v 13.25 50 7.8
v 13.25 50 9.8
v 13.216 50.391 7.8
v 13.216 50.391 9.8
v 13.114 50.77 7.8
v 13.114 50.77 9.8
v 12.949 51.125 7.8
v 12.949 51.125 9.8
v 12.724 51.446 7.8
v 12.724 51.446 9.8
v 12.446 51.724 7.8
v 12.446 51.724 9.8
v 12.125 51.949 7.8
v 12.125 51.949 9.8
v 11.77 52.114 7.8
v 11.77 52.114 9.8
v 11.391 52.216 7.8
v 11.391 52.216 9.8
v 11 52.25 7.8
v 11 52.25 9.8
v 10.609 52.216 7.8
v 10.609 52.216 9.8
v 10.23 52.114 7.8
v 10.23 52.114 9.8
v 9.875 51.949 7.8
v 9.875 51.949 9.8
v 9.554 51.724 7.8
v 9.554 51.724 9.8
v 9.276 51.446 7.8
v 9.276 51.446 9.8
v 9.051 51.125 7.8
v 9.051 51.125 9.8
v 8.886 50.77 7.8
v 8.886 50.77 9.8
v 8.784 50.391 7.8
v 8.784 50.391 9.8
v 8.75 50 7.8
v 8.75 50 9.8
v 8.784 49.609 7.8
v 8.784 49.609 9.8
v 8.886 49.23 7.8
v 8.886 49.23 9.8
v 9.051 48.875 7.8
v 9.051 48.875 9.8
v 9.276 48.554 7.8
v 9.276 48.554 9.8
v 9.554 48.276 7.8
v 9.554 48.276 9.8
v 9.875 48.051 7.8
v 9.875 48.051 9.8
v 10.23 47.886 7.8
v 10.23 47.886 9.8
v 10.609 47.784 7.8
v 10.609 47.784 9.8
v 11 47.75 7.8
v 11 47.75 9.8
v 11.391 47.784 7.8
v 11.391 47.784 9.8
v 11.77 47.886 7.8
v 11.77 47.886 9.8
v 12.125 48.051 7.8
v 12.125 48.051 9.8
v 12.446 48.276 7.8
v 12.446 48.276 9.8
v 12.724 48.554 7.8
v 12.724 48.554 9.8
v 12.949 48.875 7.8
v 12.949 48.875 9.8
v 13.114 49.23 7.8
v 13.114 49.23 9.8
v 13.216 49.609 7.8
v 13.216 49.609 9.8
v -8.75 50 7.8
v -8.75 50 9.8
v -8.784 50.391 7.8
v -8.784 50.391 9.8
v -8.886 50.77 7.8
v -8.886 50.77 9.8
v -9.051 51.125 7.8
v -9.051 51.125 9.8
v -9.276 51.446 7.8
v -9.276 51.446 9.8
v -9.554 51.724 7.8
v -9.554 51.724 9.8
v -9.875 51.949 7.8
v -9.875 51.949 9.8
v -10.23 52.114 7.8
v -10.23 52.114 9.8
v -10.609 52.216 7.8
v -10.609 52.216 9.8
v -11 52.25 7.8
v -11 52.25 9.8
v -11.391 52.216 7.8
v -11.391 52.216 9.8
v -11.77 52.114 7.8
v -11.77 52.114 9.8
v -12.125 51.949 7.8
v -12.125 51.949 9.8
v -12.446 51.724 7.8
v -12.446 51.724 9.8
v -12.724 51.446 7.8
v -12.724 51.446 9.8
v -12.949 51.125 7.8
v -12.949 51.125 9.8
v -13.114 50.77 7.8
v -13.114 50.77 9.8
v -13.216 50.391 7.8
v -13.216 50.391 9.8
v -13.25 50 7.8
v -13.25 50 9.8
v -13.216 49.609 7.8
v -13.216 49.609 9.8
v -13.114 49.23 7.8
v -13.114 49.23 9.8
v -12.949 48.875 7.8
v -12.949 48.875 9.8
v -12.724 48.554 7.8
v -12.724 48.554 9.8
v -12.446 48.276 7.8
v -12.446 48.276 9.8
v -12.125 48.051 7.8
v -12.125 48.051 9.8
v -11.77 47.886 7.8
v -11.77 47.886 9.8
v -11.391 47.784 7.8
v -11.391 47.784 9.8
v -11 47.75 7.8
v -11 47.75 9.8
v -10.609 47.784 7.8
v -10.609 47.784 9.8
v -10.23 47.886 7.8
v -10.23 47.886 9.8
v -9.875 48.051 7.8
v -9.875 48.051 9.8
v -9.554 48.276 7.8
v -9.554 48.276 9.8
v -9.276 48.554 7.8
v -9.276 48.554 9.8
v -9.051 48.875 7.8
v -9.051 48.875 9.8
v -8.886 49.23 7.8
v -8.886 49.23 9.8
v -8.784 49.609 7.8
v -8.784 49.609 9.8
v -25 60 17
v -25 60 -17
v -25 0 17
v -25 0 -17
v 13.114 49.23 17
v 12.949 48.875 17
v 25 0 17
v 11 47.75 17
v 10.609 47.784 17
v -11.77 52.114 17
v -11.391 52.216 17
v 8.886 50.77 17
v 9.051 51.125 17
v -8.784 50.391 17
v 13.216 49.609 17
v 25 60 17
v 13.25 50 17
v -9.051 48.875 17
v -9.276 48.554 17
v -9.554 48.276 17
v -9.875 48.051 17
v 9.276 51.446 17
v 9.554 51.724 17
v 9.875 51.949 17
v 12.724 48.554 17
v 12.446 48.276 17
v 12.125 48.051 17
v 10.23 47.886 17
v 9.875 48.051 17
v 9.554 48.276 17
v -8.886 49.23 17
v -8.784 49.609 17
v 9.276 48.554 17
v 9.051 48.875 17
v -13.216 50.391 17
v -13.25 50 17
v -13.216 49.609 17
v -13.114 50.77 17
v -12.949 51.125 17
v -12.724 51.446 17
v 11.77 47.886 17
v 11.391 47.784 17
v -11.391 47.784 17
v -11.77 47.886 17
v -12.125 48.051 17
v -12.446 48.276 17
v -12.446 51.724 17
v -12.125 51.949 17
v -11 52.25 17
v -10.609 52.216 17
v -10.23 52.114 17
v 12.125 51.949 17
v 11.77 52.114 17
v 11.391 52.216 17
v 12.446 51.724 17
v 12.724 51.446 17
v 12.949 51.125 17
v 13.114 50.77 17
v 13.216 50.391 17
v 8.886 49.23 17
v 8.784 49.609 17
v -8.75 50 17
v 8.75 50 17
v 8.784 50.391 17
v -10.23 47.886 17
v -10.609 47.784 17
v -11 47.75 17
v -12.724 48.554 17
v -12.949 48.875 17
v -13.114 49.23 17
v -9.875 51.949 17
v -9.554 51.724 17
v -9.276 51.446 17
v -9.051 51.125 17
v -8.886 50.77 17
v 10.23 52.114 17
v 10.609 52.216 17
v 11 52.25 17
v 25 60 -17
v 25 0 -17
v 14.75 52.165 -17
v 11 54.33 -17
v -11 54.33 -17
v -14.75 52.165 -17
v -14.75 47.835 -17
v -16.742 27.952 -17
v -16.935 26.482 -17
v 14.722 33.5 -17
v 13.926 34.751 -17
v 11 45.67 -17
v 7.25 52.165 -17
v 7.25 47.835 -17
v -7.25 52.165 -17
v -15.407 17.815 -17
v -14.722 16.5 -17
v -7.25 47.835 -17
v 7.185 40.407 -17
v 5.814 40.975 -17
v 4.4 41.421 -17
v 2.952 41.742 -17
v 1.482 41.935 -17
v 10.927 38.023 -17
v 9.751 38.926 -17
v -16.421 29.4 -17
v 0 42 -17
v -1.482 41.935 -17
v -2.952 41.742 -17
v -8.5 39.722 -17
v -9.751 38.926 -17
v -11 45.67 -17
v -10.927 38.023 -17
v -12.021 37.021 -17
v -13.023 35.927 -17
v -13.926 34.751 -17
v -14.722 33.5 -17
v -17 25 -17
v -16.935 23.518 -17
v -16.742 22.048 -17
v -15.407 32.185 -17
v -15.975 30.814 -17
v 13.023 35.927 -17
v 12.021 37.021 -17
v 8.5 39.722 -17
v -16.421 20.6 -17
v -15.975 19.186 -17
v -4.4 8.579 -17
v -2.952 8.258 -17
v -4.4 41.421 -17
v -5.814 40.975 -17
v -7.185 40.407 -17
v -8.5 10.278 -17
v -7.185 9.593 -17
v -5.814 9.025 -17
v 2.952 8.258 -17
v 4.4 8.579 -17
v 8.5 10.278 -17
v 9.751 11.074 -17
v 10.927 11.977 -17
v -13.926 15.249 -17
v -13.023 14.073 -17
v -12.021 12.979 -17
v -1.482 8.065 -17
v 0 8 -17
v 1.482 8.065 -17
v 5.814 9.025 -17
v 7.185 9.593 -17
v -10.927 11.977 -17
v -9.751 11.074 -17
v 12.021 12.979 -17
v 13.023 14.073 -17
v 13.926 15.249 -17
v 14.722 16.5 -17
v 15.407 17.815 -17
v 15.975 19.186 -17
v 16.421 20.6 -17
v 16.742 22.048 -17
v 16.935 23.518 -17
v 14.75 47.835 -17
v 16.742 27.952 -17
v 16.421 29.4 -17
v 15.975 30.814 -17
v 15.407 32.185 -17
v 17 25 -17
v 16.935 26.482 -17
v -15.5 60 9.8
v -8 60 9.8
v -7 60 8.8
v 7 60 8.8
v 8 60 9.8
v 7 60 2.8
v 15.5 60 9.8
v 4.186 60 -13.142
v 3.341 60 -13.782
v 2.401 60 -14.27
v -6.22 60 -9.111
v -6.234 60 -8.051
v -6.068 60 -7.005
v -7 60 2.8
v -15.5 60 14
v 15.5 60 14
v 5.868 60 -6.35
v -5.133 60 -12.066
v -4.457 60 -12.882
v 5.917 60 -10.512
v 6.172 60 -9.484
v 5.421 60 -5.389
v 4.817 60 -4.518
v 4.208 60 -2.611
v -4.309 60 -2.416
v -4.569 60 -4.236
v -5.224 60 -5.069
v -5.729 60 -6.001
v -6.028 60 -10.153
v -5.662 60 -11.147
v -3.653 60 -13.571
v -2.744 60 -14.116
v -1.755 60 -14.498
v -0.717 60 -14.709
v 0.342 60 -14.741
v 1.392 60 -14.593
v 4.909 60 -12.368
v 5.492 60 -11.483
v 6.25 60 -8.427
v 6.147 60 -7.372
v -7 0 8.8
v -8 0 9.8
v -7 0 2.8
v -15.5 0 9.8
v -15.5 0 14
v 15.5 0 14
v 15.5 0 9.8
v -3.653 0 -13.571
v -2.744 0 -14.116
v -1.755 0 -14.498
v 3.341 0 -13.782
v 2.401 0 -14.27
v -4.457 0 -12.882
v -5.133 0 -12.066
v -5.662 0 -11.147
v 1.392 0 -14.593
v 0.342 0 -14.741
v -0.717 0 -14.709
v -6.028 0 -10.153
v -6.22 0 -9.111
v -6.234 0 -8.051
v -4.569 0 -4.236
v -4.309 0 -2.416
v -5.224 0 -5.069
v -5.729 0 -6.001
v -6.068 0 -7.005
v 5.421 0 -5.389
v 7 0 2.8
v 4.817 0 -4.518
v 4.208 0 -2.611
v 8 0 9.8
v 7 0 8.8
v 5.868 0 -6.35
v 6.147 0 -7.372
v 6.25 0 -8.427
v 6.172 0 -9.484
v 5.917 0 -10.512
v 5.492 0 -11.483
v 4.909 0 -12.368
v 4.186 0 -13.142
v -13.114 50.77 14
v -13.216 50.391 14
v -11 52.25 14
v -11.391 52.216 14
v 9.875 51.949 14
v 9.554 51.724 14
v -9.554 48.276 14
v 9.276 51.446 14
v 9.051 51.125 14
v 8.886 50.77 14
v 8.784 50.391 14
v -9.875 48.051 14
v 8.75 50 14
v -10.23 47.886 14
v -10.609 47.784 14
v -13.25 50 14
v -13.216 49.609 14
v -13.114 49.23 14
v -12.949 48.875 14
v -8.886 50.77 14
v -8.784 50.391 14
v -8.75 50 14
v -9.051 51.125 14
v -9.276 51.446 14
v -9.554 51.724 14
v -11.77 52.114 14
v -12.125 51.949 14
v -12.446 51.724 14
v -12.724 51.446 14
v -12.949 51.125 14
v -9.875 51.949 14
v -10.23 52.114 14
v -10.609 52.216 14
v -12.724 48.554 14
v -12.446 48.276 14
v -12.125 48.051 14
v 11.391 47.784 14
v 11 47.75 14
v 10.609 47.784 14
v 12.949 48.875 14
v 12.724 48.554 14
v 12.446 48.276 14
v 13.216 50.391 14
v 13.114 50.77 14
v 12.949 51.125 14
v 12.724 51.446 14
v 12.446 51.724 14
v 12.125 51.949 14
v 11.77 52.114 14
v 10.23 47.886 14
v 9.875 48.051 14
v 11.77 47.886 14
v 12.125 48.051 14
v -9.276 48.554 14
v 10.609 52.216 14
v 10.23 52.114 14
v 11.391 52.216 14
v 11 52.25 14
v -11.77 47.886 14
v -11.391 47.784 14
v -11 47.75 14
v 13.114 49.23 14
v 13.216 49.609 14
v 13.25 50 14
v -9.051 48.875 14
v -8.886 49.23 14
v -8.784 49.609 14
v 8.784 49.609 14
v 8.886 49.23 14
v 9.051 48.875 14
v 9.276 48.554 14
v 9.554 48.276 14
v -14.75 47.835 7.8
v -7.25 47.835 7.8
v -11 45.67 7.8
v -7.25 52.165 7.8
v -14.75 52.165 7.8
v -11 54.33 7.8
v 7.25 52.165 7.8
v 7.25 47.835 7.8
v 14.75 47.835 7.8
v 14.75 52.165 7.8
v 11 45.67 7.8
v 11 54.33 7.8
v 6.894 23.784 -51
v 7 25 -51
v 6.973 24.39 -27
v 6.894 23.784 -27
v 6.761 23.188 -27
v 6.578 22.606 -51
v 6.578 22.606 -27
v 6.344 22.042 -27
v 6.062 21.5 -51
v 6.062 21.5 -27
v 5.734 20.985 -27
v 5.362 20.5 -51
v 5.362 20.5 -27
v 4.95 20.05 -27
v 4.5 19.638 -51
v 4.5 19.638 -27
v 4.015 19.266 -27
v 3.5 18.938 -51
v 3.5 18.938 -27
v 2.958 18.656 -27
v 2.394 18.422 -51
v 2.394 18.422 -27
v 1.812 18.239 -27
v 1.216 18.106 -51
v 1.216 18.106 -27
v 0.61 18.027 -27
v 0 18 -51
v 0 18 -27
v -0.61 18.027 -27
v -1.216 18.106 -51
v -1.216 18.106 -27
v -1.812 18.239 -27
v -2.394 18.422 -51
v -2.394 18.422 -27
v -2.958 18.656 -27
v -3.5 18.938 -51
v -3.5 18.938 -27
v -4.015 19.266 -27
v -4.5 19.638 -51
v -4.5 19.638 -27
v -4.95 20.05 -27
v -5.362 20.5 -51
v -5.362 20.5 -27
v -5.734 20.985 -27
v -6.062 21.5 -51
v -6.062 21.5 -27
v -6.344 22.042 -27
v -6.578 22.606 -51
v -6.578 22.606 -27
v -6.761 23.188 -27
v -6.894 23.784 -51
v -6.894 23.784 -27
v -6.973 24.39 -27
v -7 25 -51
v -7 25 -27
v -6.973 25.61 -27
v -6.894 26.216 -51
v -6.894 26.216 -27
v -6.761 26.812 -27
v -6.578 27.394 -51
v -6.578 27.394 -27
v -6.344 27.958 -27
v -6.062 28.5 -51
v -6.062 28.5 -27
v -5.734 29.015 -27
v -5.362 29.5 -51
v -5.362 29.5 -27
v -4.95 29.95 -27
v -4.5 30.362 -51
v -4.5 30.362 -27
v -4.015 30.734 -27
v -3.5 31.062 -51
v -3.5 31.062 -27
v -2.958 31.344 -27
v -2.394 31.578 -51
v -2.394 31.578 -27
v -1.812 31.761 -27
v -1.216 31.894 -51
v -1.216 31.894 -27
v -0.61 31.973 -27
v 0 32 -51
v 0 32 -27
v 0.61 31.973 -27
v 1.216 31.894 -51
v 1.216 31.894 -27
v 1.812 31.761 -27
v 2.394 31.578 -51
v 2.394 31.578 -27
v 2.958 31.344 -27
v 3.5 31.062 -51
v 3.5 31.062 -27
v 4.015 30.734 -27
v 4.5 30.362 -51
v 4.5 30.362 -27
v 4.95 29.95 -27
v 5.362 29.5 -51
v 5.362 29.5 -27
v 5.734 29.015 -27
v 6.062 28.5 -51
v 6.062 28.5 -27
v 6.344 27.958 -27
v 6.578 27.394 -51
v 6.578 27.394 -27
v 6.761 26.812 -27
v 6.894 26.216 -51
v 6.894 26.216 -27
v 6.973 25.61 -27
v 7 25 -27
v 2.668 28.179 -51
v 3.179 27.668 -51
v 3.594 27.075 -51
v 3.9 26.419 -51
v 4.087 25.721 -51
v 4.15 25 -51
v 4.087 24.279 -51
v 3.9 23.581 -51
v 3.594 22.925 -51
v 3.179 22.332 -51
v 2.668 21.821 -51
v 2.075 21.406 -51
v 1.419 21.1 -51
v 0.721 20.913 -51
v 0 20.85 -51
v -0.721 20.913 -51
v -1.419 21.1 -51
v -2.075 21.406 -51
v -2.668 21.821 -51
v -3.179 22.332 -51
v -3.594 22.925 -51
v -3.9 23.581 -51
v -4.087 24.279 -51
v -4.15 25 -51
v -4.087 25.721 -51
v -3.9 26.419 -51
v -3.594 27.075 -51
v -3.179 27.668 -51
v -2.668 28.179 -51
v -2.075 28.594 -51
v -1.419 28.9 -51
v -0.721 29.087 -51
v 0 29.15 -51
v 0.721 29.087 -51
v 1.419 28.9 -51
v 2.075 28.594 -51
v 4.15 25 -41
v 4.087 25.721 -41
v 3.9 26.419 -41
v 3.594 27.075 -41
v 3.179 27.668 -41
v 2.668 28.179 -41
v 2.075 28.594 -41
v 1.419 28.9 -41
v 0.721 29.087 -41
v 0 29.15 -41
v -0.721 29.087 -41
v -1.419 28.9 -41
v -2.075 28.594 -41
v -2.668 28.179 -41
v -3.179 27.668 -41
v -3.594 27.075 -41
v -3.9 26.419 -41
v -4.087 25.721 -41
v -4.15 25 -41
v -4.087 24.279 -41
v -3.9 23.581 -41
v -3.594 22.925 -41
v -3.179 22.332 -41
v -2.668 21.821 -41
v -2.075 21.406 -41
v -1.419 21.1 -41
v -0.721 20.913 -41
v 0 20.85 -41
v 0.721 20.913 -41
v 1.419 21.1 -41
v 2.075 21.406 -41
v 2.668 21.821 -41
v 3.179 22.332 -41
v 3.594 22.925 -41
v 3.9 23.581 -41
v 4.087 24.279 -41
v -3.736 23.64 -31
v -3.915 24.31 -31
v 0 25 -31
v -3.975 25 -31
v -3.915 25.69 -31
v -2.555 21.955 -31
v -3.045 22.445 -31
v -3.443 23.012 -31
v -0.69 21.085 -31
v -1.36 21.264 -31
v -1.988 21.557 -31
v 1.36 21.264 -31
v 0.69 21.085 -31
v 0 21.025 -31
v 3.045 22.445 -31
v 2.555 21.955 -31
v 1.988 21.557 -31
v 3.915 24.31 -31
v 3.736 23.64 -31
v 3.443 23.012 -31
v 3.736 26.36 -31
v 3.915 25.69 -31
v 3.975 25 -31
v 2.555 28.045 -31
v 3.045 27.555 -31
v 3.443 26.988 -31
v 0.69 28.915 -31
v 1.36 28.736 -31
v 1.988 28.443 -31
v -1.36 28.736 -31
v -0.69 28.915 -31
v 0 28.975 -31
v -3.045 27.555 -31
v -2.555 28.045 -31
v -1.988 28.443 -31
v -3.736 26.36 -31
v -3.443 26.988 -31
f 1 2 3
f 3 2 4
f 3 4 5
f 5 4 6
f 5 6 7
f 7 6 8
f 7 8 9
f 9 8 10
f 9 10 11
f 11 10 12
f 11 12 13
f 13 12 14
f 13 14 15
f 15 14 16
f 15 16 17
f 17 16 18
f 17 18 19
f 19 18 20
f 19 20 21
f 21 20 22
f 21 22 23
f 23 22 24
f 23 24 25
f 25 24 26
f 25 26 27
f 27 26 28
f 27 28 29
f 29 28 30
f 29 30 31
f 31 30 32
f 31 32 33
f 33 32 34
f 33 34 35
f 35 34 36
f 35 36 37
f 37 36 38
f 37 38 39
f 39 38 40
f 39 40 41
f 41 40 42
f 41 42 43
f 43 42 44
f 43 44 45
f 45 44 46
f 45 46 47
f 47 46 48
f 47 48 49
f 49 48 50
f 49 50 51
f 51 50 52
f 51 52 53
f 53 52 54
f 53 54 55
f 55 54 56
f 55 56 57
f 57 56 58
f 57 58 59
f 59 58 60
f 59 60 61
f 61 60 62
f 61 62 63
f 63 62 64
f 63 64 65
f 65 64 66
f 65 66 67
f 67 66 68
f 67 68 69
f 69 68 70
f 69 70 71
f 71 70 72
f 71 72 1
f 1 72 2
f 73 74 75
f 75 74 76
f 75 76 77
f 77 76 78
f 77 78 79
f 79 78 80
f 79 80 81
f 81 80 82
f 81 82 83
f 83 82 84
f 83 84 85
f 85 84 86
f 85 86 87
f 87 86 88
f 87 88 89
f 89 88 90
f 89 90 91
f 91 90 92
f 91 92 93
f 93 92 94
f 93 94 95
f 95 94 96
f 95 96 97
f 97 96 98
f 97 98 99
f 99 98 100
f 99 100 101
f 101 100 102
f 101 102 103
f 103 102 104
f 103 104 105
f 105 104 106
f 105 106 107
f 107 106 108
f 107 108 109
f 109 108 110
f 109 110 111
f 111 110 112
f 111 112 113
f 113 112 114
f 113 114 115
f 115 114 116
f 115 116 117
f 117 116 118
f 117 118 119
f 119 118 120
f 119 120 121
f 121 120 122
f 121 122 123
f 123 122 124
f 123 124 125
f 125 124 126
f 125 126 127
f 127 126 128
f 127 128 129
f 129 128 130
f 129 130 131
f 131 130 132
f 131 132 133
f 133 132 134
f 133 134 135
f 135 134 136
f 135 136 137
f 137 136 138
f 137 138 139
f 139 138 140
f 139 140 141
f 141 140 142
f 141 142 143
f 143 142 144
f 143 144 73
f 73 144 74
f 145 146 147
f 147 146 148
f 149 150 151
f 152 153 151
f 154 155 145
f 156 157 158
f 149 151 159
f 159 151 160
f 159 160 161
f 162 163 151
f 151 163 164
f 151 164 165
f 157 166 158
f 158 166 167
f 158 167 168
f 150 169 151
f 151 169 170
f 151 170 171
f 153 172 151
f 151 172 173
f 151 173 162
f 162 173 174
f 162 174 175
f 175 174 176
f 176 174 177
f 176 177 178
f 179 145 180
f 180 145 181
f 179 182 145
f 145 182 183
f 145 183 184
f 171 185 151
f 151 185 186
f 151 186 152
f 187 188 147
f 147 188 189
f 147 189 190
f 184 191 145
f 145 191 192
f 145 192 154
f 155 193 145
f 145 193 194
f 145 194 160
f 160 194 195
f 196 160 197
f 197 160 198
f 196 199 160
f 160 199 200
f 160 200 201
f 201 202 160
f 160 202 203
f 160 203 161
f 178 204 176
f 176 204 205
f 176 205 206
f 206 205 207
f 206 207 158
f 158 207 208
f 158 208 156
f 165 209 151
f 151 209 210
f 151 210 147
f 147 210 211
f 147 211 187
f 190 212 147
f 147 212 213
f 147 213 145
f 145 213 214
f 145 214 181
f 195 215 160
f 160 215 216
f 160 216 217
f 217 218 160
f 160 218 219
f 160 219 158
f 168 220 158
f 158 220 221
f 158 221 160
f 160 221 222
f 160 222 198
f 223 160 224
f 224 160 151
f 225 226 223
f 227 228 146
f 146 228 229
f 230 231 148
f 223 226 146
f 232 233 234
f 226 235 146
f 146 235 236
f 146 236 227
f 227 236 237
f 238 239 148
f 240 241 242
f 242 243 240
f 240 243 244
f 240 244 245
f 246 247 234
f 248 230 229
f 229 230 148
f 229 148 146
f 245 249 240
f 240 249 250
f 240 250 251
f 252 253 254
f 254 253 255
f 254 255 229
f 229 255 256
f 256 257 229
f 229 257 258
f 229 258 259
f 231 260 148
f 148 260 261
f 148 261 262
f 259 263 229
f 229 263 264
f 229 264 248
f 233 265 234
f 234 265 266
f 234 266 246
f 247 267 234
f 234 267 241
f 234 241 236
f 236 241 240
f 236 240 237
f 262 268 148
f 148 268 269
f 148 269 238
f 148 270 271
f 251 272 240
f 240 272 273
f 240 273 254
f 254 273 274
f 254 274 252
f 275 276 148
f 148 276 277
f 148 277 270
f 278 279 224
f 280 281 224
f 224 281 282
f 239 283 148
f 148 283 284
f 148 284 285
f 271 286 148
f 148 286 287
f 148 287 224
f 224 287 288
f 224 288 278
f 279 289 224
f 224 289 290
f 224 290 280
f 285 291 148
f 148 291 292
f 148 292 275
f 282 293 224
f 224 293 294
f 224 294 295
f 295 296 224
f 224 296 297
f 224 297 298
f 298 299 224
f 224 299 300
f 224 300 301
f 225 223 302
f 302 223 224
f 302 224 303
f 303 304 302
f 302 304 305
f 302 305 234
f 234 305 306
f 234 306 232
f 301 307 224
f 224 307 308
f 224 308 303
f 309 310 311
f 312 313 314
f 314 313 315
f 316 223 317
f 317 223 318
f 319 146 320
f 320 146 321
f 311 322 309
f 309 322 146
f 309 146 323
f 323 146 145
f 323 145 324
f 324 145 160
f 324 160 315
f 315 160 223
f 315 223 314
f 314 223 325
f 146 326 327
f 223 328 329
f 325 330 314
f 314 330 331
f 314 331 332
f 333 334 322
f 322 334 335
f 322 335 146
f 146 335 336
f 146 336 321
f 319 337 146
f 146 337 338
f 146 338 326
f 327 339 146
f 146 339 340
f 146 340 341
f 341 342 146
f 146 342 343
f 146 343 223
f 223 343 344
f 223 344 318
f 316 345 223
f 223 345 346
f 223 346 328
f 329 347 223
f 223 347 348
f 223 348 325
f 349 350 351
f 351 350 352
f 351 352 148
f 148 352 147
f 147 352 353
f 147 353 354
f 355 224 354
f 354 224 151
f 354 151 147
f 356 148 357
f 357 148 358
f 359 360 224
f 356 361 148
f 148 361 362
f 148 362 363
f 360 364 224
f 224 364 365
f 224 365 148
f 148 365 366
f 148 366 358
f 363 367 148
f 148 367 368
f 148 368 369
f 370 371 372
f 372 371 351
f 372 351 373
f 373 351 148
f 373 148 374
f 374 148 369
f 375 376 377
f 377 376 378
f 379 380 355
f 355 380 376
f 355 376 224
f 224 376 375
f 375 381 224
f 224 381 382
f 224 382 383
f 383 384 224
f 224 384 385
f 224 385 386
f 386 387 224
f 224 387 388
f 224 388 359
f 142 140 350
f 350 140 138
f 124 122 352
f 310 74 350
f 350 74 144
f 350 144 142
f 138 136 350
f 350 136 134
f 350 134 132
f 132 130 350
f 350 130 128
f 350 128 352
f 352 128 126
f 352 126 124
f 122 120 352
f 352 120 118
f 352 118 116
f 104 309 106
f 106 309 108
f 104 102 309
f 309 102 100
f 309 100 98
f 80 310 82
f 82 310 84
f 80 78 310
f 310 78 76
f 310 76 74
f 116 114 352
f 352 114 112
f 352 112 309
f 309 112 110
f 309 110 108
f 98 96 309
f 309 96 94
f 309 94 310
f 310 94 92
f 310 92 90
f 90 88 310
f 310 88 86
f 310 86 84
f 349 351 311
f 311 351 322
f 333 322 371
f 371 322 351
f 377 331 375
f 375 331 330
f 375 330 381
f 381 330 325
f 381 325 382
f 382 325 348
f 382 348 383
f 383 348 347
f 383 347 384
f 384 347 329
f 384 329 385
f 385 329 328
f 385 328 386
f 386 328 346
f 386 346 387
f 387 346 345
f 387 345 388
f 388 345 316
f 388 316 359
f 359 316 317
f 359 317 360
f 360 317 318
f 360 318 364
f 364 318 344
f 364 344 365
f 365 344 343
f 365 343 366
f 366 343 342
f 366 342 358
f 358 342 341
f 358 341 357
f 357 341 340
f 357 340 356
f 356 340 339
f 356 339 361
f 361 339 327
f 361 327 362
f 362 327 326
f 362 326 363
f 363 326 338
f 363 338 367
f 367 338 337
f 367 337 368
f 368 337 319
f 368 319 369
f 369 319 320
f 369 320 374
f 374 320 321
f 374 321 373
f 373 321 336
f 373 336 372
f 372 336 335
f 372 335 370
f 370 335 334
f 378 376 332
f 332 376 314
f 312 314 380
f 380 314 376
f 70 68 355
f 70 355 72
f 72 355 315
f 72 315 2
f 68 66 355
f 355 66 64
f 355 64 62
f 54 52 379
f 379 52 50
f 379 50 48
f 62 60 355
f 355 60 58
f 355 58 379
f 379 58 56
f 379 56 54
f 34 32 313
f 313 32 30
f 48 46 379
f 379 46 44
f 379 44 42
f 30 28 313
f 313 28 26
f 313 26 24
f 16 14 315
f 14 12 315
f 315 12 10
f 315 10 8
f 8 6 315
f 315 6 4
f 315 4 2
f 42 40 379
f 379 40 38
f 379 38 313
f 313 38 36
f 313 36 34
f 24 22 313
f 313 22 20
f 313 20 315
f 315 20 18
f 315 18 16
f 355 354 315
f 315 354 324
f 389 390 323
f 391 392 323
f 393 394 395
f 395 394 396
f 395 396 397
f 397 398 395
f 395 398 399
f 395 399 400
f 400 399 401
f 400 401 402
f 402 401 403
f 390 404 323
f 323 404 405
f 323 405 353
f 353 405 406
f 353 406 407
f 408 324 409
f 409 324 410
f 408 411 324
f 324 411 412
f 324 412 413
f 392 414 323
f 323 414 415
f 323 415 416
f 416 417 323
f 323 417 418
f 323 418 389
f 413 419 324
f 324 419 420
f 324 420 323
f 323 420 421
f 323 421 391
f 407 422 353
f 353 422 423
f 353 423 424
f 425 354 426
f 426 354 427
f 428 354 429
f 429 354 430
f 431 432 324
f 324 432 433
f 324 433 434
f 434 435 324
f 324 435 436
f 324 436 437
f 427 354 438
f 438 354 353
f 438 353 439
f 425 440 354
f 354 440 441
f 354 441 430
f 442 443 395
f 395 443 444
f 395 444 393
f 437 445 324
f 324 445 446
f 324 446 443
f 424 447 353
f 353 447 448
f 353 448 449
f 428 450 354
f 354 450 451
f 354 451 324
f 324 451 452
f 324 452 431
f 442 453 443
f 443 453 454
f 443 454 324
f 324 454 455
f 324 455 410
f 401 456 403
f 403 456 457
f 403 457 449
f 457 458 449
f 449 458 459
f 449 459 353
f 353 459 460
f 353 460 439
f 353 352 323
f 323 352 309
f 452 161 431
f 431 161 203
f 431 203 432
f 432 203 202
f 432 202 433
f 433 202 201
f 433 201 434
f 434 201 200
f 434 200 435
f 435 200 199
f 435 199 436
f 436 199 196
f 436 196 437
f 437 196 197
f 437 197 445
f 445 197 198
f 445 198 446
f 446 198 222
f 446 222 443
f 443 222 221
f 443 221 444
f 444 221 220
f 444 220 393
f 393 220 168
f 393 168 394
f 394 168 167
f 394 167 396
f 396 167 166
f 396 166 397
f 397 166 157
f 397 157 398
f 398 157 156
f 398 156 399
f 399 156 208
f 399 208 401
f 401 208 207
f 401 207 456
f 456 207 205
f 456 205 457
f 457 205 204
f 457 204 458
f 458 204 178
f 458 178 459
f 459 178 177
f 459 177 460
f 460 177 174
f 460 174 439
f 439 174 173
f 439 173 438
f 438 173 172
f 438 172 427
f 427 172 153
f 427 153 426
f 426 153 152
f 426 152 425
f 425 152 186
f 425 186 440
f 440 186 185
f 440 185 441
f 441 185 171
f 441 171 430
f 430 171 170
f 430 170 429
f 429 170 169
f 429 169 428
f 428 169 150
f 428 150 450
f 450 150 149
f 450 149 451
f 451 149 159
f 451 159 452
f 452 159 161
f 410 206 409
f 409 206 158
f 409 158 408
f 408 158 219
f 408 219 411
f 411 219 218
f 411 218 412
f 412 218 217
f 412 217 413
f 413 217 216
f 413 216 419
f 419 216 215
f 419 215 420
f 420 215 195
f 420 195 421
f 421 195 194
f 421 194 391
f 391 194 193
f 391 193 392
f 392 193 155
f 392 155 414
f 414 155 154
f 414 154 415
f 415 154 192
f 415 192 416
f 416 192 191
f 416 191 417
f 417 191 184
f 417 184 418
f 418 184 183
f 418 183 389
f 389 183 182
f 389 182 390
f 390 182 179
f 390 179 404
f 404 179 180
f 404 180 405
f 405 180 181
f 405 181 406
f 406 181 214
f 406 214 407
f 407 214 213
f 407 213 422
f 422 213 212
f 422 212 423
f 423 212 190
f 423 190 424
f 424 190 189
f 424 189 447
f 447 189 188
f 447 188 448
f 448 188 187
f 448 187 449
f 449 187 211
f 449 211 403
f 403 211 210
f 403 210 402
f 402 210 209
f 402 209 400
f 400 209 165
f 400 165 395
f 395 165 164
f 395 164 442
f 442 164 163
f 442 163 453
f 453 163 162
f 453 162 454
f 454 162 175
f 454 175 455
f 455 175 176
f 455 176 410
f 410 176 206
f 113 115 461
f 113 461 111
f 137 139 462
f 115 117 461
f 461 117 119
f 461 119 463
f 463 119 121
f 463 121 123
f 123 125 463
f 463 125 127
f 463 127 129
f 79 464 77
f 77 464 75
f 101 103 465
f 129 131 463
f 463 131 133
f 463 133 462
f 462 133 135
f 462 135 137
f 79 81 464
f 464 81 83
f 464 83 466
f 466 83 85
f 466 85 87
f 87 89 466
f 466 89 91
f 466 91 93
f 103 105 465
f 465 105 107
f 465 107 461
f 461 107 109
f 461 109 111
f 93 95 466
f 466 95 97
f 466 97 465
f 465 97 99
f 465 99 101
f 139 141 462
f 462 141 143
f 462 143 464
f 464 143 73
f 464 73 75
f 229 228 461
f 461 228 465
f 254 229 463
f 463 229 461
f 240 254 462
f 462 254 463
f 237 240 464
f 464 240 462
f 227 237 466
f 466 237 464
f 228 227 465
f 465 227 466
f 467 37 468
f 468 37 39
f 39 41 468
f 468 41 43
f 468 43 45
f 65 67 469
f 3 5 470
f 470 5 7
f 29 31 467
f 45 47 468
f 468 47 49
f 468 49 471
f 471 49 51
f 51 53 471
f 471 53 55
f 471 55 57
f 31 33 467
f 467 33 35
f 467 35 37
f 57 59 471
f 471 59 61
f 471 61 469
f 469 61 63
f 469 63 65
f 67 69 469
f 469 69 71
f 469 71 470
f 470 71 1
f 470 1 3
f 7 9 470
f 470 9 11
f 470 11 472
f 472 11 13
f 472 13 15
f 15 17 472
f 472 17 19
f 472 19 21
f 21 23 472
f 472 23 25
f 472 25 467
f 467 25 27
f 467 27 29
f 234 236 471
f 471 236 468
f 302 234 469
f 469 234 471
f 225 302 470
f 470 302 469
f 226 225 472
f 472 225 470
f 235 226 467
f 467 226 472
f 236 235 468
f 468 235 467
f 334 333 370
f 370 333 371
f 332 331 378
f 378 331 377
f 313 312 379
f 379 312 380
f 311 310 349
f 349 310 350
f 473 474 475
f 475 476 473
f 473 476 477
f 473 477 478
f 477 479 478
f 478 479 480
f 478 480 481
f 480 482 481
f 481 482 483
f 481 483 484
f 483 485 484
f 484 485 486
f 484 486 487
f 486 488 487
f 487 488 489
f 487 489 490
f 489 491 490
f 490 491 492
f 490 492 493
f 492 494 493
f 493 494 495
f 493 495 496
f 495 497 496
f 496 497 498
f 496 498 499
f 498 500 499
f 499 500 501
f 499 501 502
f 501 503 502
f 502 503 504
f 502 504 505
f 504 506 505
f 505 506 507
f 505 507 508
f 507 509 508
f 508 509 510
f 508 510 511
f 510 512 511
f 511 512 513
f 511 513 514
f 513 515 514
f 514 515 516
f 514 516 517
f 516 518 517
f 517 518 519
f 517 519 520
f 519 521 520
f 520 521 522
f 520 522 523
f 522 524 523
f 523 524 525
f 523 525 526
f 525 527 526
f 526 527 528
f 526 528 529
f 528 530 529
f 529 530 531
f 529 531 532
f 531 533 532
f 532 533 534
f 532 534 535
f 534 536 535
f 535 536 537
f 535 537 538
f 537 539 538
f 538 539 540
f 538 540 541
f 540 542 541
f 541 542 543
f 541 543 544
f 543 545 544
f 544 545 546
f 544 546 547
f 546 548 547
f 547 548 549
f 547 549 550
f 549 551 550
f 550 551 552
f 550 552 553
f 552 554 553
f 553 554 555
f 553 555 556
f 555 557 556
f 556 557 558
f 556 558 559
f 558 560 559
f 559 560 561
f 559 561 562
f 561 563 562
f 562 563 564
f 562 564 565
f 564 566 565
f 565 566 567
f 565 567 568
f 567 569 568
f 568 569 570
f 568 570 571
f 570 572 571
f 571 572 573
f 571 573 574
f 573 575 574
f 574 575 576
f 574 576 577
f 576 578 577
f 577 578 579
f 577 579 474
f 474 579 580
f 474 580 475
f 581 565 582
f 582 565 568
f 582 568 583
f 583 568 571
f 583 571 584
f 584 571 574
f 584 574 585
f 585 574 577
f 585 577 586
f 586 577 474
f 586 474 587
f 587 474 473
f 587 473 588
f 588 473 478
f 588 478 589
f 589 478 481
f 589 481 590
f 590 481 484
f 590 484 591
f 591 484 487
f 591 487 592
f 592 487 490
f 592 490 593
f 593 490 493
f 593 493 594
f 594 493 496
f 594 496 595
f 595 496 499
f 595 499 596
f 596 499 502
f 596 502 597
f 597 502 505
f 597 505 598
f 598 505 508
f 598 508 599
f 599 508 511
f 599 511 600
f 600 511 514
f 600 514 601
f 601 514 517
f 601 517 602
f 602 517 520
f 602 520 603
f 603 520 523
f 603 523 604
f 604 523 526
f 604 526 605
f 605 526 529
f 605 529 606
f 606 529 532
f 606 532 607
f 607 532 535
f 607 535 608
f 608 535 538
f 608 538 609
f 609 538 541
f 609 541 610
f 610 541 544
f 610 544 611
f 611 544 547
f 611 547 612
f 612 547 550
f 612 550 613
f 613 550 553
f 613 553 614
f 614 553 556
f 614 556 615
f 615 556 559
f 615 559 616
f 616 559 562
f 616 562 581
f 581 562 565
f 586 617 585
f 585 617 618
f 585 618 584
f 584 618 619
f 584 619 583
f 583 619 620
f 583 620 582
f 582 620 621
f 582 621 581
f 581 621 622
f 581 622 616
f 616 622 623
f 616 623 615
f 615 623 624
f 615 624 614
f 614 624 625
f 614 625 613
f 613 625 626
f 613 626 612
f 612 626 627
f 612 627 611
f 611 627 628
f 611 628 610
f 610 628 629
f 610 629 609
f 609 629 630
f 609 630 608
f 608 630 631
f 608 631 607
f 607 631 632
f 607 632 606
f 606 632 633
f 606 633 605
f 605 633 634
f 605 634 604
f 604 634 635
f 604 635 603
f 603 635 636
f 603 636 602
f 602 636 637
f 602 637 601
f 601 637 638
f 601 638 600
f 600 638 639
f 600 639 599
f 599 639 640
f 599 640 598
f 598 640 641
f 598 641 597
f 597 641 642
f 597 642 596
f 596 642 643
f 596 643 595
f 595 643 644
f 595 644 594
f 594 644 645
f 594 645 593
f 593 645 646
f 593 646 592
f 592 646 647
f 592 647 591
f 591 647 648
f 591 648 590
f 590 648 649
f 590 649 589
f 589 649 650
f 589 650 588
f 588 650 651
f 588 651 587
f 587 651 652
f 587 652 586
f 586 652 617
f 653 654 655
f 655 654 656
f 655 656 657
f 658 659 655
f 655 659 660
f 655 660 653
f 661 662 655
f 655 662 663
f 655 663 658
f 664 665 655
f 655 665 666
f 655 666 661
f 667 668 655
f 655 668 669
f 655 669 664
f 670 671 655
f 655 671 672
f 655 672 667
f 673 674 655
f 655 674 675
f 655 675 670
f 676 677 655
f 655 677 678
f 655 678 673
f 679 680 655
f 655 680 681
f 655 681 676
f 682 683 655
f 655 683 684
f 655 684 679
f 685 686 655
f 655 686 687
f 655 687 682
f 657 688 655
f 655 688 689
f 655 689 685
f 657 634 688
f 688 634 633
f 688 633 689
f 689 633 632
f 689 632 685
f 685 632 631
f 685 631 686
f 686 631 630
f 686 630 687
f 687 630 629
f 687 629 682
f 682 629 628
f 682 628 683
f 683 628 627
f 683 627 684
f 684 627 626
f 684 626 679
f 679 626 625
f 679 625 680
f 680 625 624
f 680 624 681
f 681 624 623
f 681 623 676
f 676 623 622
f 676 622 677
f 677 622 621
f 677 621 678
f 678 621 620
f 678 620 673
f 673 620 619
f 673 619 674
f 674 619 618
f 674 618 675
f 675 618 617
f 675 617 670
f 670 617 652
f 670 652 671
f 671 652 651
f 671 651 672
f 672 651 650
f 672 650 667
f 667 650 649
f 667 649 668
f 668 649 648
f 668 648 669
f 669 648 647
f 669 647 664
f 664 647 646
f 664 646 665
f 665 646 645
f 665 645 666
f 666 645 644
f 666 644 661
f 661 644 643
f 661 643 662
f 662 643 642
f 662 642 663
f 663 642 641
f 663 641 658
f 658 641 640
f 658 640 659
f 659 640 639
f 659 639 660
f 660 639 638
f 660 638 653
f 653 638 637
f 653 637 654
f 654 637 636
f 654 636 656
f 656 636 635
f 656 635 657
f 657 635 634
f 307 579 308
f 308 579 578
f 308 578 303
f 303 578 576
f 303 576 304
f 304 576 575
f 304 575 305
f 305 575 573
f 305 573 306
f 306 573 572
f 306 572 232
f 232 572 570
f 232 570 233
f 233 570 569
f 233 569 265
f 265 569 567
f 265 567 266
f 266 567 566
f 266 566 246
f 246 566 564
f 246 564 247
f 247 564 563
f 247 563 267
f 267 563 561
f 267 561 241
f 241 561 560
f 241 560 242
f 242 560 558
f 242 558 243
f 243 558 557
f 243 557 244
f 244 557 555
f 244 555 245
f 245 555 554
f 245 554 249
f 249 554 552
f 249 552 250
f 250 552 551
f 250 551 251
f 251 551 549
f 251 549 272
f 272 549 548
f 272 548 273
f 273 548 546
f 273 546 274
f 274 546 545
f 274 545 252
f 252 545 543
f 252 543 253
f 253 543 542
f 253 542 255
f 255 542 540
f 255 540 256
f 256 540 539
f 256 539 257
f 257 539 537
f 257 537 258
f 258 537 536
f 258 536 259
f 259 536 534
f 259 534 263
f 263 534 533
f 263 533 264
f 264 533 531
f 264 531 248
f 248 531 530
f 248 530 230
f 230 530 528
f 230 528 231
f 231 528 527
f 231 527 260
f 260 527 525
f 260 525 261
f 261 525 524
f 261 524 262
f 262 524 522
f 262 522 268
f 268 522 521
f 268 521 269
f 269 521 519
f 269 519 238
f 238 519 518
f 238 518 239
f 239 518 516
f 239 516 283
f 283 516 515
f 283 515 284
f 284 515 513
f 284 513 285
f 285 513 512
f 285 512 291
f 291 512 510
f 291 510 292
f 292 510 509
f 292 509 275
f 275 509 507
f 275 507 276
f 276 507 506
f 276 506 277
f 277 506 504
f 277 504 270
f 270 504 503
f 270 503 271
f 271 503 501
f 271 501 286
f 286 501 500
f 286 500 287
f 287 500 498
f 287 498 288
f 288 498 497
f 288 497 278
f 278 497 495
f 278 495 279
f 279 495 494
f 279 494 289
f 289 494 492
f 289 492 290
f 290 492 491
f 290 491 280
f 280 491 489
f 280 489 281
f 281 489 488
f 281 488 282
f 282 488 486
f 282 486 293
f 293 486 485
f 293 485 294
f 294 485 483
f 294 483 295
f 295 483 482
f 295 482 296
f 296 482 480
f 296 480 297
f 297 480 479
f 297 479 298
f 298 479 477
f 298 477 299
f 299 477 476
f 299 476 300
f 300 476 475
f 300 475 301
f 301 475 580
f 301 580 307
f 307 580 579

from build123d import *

# Parameters (mm, degrees)
SKETCH1_W           = 50
SKETCH1_H           = 34
BOSS_EXTRUDE1_DEPTH = 60
CUT_EXTRUDE1_DEPTH  = 68.186308129
SKETCH3_R           = 2.25
CUT_EXTRUDE2_DEPTH  = 74.35529974
CUT_EXTRUDE3_DEPTH  = 24.8
CHAMFER1_SIZE       = 1
CHAMFER1_SIZE_2     = 1.220120443
SKETCH5_R           = 7
BOSS_EXTRUDE2_DEPTH = 14
SKETCH6_R           = 7
SKETCH6_R_2         = 4.15
BOSS_EXTRUDE3_DEPTH = 20
CHAMFER2_SIZE       = 10
CHAMFER2_SIZE2      = 0.174550649
CHAMFER4_SIZE       = 10


with BuildPart() as part:
    # Sketch1 → Boss-Extrude1 (new body)
    with BuildSketch(Plane(origin=(0, 0, 0), x_dir=(1, 0, 0), z_dir=(0, 1, 0))):
        Rectangle(SKETCH1_W, SKETCH1_H)
    extrude(amount=BOSS_EXTRUDE1_DEPTH)

    # Sketch2 → Cut-Extrude1 (cut, through all)
    with BuildSketch(Plane(origin=(0, 60, 0), x_dir=(1, 0, 0), z_dir=(0, 1, 0))):
        with BuildLine():
            Line((-3.75, 3.5), (-7, -2.8))
            Line((-7, -2.8), (-7, -9.8))
            Line((-7, -9.8), (-15.5, -9.8))
            Line((-15.5, -9.8), (-15.5, -14))
            Line((-15.5, -14), (15.5, -14))
            Line((15.5, -14), (15.5, -9.8))
            Line((15.5, -9.8), (7, -9.8))
            Line((7, -9.8), (7, -2.8))
            Line((7, -2.8), (3.75, 3.5))
            ThreePointArc((3.75, 3.5), (0, 14.75), (-3.75, 3.5))
        make_face()
    extrude(amount=-CUT_EXTRUDE1_DEPTH, mode=Mode.SUBTRACT)

    # Sketch3 → Cut-Extrude2 (cut, through all)
    with BuildSketch(Plane.XY.offset(17)):
        with Locations((-11, 50)):
            Circle(SKETCH3_R)
        with Locations((11, 50)):
            Circle(SKETCH3_R)
    extrude(amount=-CUT_EXTRUDE2_DEPTH, mode=Mode.SUBTRACT)

    # Sketch4 → Cut-Extrude3 (cut)
    with BuildSketch(Plane(origin=(0, 0, -17), x_dir=(-1, 0, 0), z_dir=(0, 0, -1))):
        Polygon((14.75, 52.165063509), (11, 54.330127019), (7.25, 52.165063509), (7.25, 47.834936491), (11, 45.669872981), (14.75, 47.834936491), align=None)
        Polygon((-7.25, 47.834936491), (-7.25, 52.165063509), (-11, 54.330127019), (-14.75, 52.165063509), (-14.75, 47.834936491), (-11, 45.669872981), align=None)
    extrude(amount=-CUT_EXTRUDE3_DEPTH, mode=Mode.SUBTRACT)

    # Chamfer1
    # the kernel refuses this chamfer: 1.220120443, 1 mm, written as the material it takes off along each edge
    with BuildSketch(Plane(origin=(-7, 62.571682988, 9.8), x_dir=(-1, 0, 0), z_dir=(0, -1, 0)), Plane(origin=(7, 62.571682988, 9.8), x_dir=(0, 0, -1), z_dir=(0, -1, 0))) as chamfer1_piece_1:
        Polygon((CHAMFER1_SIZE, 0), (0, CHAMFER1_SIZE), (0, 0), align=None)
    extrude(amount=65.143365976, mode=Mode.SUBTRACT)
    with BuildSketch(Plane(origin=(-3.75, 63.150527813, -3.5), x_dir=(-0.45846324589157744, 0, 0.8887133689590581), z_dir=(0, -1, 0))) as chamfer1_piece_2:
        with BuildLine():
            Line((CHAMFER1_SIZE_2, 0), (-0.278286757, 1.065574765))
            ThreePointArc((-0.278286757, 1.065574765), (-0.120412167, 0.557139368), (0, 0))
            Line((0, 0), (CHAMFER1_SIZE_2, 0))
        make_face()
    extrude(amount=66.301055626, mode=Mode.SUBTRACT)
    with BuildSketch(Plane(origin=(3.75, 63.795705698, -3.5), x_dir=(0.7235959376340886, 0, -0.6902238180760238), z_dir=(0, -1, 0))) as chamfer1_piece_3:
        with BuildLine():
            Line((1.475268649, 0), (-CHAMFER1_SIZE * 0.281668992416, CHAMFER1_SIZE * 0.959511635527))
            Line((-CHAMFER1_SIZE * 0.281668992416, CHAMFER1_SIZE * 0.959511635527), (0, 0))
            ThreePointArc((0, 0), (0.759242358, 0.043643641), (1.475268649, 0))
        make_face()
    extrude(amount=67.591411396, mode=Mode.SUBTRACT)

    # Sketch5 → Boss-Extrude2 (add)
    with BuildSketch(Plane(origin=(0, 0, -17), x_dir=(-1, 0, 0), z_dir=(0, 0, -1))):
        with Locations(Location((0, 25, 0), (0, 0, 180))):
            Circle(SKETCH5_R)
    extrude(amount=BOSS_EXTRUDE2_DEPTH)

    # Sketch6 → Boss-Extrude3 (add)
    with BuildSketch(Plane(origin=(0, 0, -31), x_dir=(-1, 0, 0), z_dir=(0, 0, -1))):
        with Locations(Location((0, 25, 0), (0, 0, 180))):
            Circle(SKETCH6_R)
        with Locations((0, 25)):
            Circle(SKETCH6_R_2, mode=Mode.SUBTRACT)
    extrude(amount=BOSS_EXTRUDE3_DEPTH)

    # Chamfer2
    chamfer2_edges = [part.edges().sort_by_distance(p)[0] for p in [
        (4.15, 25, -31),
    ]]
    chamfer2_side = [part.faces().sort_by_distance(p)[0] for p in [
        (4.15, 25, -41),
    ]]
    chamfer(chamfer2_edges, length=CHAMFER2_SIZE, length2=CHAMFER2_SIZE2, reference=chamfer2_side[0])

    # Chamfer4
    chamfer4_edges = [part.edges().sort_by_distance(p)[0] for p in [
        (-7, 25, -17),
    ]]
    chamfer(chamfer4_edges, length=CHAMFER4_SIZE)


solid = part.part
